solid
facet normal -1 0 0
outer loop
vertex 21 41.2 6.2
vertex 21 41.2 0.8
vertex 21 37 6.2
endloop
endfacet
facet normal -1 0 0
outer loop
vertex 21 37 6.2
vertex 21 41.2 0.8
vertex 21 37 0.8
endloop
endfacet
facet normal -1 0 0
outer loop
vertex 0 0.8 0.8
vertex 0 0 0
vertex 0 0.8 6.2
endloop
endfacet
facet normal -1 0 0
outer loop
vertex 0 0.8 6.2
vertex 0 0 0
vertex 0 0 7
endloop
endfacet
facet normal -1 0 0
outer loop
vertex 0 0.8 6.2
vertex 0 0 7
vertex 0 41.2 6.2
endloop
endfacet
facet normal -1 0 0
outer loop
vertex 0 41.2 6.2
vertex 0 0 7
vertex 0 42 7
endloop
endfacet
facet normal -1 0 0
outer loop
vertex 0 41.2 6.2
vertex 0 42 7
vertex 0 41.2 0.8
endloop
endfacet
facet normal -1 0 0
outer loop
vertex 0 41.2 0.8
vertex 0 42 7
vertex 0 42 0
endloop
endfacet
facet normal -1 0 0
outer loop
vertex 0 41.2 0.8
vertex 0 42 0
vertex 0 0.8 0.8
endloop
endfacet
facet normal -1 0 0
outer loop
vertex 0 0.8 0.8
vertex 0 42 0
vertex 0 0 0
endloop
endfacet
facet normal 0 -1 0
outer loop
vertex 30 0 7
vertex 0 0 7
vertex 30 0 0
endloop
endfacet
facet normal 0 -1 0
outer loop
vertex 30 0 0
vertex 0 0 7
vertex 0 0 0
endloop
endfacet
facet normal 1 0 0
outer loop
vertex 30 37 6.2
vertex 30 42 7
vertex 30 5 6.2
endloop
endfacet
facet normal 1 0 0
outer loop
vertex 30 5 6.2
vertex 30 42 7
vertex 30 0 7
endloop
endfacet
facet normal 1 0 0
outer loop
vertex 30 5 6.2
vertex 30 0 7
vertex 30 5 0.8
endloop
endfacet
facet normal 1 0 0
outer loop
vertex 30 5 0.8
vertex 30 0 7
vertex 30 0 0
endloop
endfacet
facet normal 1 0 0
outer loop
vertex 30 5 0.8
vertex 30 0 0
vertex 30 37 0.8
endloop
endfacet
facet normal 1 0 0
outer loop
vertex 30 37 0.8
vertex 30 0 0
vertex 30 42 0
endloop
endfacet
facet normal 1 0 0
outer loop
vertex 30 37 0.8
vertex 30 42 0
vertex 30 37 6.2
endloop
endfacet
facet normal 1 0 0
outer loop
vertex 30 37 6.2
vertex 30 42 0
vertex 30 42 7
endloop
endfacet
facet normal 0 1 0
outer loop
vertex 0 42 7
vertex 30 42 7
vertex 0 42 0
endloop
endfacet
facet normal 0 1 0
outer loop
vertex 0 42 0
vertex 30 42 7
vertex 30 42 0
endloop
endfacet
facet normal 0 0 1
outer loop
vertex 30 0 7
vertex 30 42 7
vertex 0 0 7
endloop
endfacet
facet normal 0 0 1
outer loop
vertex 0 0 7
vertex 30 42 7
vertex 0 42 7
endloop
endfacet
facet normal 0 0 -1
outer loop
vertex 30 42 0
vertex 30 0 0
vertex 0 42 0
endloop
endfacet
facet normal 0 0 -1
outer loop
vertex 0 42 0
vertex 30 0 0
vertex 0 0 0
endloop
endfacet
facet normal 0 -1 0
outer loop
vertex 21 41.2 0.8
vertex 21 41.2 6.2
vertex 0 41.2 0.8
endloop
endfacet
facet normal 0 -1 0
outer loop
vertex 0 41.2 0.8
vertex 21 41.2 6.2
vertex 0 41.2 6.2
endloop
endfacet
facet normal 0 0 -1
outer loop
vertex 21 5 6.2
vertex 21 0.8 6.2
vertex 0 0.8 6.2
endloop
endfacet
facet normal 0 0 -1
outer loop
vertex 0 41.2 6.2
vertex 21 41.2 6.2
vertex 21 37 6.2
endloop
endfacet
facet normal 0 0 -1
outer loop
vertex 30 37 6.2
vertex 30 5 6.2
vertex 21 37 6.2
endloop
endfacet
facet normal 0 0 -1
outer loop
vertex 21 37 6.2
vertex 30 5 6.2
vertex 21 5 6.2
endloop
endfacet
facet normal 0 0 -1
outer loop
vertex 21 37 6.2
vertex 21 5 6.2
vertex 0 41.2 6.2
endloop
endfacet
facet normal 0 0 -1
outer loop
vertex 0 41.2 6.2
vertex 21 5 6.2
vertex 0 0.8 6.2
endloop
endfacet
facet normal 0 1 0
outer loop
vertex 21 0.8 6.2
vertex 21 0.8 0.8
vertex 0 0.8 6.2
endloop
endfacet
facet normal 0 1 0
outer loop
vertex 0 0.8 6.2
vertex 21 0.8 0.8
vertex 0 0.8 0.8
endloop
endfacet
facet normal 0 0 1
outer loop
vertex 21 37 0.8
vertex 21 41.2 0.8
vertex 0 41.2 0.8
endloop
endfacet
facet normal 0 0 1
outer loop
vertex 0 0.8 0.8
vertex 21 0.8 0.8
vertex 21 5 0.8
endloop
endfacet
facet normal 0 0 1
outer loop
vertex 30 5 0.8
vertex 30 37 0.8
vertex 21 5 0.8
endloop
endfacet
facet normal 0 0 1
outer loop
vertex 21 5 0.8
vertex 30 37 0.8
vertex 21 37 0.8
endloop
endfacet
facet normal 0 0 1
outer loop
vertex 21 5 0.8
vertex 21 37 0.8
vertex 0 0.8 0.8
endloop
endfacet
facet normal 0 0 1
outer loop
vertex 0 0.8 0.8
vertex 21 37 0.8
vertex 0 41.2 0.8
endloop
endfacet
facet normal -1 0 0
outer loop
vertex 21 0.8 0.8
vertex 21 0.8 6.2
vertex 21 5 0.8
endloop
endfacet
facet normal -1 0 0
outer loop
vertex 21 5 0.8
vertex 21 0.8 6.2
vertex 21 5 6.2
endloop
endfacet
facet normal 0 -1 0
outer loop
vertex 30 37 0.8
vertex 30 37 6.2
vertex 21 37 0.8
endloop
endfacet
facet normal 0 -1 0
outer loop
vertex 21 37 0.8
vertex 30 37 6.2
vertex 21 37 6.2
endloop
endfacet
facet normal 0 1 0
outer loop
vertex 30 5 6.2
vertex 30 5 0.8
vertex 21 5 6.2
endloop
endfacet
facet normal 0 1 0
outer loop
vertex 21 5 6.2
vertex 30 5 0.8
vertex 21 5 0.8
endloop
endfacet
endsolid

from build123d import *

# Parameters (mm, degrees)
SKETCH1_W           = 30
SKETCH1_H           = 42
BOSS_EXTRUDE1_DEPTH = 7
SKETCH2_W           = 5.4
SKETCH2_H           = 40.4
CUT_EXTRUDE1_DEPTH  = 21
SKETCH3_W           = 5.4
SKETCH3_H           = 32
CUT_EXTRUDE2_DEPTH  = 21


with BuildPart() as part:
    # Sketch1 → Boss-Extrude1 (new body)
    with BuildSketch(Plane.XY):
        with Locations((15, 21)):
            Rectangle(SKETCH1_W, SKETCH1_H)
    extrude(amount=BOSS_EXTRUDE1_DEPTH)

    # Sketch2 → Cut-Extrude1 (cut)
    with BuildSketch(Plane.ZY):
        with Locations((3.5, 21)):
            Rectangle(SKETCH2_W, SKETCH2_H)
    extrude(amount=-CUT_EXTRUDE1_DEPTH, mode=Mode.SUBTRACT)

    # Sketch3 → Cut-Extrude2 (cut)
    with BuildSketch(Plane(origin=(30, 0, 0), x_dir=(0, 0, -1), z_dir=(1, 0, 0))):
        with Locations((-3.5, 21)):
            Rectangle(SKETCH3_W, SKETCH3_H)
    extrude(amount=-CUT_EXTRUDE2_DEPTH, mode=Mode.SUBTRACT)


solid = part.part
